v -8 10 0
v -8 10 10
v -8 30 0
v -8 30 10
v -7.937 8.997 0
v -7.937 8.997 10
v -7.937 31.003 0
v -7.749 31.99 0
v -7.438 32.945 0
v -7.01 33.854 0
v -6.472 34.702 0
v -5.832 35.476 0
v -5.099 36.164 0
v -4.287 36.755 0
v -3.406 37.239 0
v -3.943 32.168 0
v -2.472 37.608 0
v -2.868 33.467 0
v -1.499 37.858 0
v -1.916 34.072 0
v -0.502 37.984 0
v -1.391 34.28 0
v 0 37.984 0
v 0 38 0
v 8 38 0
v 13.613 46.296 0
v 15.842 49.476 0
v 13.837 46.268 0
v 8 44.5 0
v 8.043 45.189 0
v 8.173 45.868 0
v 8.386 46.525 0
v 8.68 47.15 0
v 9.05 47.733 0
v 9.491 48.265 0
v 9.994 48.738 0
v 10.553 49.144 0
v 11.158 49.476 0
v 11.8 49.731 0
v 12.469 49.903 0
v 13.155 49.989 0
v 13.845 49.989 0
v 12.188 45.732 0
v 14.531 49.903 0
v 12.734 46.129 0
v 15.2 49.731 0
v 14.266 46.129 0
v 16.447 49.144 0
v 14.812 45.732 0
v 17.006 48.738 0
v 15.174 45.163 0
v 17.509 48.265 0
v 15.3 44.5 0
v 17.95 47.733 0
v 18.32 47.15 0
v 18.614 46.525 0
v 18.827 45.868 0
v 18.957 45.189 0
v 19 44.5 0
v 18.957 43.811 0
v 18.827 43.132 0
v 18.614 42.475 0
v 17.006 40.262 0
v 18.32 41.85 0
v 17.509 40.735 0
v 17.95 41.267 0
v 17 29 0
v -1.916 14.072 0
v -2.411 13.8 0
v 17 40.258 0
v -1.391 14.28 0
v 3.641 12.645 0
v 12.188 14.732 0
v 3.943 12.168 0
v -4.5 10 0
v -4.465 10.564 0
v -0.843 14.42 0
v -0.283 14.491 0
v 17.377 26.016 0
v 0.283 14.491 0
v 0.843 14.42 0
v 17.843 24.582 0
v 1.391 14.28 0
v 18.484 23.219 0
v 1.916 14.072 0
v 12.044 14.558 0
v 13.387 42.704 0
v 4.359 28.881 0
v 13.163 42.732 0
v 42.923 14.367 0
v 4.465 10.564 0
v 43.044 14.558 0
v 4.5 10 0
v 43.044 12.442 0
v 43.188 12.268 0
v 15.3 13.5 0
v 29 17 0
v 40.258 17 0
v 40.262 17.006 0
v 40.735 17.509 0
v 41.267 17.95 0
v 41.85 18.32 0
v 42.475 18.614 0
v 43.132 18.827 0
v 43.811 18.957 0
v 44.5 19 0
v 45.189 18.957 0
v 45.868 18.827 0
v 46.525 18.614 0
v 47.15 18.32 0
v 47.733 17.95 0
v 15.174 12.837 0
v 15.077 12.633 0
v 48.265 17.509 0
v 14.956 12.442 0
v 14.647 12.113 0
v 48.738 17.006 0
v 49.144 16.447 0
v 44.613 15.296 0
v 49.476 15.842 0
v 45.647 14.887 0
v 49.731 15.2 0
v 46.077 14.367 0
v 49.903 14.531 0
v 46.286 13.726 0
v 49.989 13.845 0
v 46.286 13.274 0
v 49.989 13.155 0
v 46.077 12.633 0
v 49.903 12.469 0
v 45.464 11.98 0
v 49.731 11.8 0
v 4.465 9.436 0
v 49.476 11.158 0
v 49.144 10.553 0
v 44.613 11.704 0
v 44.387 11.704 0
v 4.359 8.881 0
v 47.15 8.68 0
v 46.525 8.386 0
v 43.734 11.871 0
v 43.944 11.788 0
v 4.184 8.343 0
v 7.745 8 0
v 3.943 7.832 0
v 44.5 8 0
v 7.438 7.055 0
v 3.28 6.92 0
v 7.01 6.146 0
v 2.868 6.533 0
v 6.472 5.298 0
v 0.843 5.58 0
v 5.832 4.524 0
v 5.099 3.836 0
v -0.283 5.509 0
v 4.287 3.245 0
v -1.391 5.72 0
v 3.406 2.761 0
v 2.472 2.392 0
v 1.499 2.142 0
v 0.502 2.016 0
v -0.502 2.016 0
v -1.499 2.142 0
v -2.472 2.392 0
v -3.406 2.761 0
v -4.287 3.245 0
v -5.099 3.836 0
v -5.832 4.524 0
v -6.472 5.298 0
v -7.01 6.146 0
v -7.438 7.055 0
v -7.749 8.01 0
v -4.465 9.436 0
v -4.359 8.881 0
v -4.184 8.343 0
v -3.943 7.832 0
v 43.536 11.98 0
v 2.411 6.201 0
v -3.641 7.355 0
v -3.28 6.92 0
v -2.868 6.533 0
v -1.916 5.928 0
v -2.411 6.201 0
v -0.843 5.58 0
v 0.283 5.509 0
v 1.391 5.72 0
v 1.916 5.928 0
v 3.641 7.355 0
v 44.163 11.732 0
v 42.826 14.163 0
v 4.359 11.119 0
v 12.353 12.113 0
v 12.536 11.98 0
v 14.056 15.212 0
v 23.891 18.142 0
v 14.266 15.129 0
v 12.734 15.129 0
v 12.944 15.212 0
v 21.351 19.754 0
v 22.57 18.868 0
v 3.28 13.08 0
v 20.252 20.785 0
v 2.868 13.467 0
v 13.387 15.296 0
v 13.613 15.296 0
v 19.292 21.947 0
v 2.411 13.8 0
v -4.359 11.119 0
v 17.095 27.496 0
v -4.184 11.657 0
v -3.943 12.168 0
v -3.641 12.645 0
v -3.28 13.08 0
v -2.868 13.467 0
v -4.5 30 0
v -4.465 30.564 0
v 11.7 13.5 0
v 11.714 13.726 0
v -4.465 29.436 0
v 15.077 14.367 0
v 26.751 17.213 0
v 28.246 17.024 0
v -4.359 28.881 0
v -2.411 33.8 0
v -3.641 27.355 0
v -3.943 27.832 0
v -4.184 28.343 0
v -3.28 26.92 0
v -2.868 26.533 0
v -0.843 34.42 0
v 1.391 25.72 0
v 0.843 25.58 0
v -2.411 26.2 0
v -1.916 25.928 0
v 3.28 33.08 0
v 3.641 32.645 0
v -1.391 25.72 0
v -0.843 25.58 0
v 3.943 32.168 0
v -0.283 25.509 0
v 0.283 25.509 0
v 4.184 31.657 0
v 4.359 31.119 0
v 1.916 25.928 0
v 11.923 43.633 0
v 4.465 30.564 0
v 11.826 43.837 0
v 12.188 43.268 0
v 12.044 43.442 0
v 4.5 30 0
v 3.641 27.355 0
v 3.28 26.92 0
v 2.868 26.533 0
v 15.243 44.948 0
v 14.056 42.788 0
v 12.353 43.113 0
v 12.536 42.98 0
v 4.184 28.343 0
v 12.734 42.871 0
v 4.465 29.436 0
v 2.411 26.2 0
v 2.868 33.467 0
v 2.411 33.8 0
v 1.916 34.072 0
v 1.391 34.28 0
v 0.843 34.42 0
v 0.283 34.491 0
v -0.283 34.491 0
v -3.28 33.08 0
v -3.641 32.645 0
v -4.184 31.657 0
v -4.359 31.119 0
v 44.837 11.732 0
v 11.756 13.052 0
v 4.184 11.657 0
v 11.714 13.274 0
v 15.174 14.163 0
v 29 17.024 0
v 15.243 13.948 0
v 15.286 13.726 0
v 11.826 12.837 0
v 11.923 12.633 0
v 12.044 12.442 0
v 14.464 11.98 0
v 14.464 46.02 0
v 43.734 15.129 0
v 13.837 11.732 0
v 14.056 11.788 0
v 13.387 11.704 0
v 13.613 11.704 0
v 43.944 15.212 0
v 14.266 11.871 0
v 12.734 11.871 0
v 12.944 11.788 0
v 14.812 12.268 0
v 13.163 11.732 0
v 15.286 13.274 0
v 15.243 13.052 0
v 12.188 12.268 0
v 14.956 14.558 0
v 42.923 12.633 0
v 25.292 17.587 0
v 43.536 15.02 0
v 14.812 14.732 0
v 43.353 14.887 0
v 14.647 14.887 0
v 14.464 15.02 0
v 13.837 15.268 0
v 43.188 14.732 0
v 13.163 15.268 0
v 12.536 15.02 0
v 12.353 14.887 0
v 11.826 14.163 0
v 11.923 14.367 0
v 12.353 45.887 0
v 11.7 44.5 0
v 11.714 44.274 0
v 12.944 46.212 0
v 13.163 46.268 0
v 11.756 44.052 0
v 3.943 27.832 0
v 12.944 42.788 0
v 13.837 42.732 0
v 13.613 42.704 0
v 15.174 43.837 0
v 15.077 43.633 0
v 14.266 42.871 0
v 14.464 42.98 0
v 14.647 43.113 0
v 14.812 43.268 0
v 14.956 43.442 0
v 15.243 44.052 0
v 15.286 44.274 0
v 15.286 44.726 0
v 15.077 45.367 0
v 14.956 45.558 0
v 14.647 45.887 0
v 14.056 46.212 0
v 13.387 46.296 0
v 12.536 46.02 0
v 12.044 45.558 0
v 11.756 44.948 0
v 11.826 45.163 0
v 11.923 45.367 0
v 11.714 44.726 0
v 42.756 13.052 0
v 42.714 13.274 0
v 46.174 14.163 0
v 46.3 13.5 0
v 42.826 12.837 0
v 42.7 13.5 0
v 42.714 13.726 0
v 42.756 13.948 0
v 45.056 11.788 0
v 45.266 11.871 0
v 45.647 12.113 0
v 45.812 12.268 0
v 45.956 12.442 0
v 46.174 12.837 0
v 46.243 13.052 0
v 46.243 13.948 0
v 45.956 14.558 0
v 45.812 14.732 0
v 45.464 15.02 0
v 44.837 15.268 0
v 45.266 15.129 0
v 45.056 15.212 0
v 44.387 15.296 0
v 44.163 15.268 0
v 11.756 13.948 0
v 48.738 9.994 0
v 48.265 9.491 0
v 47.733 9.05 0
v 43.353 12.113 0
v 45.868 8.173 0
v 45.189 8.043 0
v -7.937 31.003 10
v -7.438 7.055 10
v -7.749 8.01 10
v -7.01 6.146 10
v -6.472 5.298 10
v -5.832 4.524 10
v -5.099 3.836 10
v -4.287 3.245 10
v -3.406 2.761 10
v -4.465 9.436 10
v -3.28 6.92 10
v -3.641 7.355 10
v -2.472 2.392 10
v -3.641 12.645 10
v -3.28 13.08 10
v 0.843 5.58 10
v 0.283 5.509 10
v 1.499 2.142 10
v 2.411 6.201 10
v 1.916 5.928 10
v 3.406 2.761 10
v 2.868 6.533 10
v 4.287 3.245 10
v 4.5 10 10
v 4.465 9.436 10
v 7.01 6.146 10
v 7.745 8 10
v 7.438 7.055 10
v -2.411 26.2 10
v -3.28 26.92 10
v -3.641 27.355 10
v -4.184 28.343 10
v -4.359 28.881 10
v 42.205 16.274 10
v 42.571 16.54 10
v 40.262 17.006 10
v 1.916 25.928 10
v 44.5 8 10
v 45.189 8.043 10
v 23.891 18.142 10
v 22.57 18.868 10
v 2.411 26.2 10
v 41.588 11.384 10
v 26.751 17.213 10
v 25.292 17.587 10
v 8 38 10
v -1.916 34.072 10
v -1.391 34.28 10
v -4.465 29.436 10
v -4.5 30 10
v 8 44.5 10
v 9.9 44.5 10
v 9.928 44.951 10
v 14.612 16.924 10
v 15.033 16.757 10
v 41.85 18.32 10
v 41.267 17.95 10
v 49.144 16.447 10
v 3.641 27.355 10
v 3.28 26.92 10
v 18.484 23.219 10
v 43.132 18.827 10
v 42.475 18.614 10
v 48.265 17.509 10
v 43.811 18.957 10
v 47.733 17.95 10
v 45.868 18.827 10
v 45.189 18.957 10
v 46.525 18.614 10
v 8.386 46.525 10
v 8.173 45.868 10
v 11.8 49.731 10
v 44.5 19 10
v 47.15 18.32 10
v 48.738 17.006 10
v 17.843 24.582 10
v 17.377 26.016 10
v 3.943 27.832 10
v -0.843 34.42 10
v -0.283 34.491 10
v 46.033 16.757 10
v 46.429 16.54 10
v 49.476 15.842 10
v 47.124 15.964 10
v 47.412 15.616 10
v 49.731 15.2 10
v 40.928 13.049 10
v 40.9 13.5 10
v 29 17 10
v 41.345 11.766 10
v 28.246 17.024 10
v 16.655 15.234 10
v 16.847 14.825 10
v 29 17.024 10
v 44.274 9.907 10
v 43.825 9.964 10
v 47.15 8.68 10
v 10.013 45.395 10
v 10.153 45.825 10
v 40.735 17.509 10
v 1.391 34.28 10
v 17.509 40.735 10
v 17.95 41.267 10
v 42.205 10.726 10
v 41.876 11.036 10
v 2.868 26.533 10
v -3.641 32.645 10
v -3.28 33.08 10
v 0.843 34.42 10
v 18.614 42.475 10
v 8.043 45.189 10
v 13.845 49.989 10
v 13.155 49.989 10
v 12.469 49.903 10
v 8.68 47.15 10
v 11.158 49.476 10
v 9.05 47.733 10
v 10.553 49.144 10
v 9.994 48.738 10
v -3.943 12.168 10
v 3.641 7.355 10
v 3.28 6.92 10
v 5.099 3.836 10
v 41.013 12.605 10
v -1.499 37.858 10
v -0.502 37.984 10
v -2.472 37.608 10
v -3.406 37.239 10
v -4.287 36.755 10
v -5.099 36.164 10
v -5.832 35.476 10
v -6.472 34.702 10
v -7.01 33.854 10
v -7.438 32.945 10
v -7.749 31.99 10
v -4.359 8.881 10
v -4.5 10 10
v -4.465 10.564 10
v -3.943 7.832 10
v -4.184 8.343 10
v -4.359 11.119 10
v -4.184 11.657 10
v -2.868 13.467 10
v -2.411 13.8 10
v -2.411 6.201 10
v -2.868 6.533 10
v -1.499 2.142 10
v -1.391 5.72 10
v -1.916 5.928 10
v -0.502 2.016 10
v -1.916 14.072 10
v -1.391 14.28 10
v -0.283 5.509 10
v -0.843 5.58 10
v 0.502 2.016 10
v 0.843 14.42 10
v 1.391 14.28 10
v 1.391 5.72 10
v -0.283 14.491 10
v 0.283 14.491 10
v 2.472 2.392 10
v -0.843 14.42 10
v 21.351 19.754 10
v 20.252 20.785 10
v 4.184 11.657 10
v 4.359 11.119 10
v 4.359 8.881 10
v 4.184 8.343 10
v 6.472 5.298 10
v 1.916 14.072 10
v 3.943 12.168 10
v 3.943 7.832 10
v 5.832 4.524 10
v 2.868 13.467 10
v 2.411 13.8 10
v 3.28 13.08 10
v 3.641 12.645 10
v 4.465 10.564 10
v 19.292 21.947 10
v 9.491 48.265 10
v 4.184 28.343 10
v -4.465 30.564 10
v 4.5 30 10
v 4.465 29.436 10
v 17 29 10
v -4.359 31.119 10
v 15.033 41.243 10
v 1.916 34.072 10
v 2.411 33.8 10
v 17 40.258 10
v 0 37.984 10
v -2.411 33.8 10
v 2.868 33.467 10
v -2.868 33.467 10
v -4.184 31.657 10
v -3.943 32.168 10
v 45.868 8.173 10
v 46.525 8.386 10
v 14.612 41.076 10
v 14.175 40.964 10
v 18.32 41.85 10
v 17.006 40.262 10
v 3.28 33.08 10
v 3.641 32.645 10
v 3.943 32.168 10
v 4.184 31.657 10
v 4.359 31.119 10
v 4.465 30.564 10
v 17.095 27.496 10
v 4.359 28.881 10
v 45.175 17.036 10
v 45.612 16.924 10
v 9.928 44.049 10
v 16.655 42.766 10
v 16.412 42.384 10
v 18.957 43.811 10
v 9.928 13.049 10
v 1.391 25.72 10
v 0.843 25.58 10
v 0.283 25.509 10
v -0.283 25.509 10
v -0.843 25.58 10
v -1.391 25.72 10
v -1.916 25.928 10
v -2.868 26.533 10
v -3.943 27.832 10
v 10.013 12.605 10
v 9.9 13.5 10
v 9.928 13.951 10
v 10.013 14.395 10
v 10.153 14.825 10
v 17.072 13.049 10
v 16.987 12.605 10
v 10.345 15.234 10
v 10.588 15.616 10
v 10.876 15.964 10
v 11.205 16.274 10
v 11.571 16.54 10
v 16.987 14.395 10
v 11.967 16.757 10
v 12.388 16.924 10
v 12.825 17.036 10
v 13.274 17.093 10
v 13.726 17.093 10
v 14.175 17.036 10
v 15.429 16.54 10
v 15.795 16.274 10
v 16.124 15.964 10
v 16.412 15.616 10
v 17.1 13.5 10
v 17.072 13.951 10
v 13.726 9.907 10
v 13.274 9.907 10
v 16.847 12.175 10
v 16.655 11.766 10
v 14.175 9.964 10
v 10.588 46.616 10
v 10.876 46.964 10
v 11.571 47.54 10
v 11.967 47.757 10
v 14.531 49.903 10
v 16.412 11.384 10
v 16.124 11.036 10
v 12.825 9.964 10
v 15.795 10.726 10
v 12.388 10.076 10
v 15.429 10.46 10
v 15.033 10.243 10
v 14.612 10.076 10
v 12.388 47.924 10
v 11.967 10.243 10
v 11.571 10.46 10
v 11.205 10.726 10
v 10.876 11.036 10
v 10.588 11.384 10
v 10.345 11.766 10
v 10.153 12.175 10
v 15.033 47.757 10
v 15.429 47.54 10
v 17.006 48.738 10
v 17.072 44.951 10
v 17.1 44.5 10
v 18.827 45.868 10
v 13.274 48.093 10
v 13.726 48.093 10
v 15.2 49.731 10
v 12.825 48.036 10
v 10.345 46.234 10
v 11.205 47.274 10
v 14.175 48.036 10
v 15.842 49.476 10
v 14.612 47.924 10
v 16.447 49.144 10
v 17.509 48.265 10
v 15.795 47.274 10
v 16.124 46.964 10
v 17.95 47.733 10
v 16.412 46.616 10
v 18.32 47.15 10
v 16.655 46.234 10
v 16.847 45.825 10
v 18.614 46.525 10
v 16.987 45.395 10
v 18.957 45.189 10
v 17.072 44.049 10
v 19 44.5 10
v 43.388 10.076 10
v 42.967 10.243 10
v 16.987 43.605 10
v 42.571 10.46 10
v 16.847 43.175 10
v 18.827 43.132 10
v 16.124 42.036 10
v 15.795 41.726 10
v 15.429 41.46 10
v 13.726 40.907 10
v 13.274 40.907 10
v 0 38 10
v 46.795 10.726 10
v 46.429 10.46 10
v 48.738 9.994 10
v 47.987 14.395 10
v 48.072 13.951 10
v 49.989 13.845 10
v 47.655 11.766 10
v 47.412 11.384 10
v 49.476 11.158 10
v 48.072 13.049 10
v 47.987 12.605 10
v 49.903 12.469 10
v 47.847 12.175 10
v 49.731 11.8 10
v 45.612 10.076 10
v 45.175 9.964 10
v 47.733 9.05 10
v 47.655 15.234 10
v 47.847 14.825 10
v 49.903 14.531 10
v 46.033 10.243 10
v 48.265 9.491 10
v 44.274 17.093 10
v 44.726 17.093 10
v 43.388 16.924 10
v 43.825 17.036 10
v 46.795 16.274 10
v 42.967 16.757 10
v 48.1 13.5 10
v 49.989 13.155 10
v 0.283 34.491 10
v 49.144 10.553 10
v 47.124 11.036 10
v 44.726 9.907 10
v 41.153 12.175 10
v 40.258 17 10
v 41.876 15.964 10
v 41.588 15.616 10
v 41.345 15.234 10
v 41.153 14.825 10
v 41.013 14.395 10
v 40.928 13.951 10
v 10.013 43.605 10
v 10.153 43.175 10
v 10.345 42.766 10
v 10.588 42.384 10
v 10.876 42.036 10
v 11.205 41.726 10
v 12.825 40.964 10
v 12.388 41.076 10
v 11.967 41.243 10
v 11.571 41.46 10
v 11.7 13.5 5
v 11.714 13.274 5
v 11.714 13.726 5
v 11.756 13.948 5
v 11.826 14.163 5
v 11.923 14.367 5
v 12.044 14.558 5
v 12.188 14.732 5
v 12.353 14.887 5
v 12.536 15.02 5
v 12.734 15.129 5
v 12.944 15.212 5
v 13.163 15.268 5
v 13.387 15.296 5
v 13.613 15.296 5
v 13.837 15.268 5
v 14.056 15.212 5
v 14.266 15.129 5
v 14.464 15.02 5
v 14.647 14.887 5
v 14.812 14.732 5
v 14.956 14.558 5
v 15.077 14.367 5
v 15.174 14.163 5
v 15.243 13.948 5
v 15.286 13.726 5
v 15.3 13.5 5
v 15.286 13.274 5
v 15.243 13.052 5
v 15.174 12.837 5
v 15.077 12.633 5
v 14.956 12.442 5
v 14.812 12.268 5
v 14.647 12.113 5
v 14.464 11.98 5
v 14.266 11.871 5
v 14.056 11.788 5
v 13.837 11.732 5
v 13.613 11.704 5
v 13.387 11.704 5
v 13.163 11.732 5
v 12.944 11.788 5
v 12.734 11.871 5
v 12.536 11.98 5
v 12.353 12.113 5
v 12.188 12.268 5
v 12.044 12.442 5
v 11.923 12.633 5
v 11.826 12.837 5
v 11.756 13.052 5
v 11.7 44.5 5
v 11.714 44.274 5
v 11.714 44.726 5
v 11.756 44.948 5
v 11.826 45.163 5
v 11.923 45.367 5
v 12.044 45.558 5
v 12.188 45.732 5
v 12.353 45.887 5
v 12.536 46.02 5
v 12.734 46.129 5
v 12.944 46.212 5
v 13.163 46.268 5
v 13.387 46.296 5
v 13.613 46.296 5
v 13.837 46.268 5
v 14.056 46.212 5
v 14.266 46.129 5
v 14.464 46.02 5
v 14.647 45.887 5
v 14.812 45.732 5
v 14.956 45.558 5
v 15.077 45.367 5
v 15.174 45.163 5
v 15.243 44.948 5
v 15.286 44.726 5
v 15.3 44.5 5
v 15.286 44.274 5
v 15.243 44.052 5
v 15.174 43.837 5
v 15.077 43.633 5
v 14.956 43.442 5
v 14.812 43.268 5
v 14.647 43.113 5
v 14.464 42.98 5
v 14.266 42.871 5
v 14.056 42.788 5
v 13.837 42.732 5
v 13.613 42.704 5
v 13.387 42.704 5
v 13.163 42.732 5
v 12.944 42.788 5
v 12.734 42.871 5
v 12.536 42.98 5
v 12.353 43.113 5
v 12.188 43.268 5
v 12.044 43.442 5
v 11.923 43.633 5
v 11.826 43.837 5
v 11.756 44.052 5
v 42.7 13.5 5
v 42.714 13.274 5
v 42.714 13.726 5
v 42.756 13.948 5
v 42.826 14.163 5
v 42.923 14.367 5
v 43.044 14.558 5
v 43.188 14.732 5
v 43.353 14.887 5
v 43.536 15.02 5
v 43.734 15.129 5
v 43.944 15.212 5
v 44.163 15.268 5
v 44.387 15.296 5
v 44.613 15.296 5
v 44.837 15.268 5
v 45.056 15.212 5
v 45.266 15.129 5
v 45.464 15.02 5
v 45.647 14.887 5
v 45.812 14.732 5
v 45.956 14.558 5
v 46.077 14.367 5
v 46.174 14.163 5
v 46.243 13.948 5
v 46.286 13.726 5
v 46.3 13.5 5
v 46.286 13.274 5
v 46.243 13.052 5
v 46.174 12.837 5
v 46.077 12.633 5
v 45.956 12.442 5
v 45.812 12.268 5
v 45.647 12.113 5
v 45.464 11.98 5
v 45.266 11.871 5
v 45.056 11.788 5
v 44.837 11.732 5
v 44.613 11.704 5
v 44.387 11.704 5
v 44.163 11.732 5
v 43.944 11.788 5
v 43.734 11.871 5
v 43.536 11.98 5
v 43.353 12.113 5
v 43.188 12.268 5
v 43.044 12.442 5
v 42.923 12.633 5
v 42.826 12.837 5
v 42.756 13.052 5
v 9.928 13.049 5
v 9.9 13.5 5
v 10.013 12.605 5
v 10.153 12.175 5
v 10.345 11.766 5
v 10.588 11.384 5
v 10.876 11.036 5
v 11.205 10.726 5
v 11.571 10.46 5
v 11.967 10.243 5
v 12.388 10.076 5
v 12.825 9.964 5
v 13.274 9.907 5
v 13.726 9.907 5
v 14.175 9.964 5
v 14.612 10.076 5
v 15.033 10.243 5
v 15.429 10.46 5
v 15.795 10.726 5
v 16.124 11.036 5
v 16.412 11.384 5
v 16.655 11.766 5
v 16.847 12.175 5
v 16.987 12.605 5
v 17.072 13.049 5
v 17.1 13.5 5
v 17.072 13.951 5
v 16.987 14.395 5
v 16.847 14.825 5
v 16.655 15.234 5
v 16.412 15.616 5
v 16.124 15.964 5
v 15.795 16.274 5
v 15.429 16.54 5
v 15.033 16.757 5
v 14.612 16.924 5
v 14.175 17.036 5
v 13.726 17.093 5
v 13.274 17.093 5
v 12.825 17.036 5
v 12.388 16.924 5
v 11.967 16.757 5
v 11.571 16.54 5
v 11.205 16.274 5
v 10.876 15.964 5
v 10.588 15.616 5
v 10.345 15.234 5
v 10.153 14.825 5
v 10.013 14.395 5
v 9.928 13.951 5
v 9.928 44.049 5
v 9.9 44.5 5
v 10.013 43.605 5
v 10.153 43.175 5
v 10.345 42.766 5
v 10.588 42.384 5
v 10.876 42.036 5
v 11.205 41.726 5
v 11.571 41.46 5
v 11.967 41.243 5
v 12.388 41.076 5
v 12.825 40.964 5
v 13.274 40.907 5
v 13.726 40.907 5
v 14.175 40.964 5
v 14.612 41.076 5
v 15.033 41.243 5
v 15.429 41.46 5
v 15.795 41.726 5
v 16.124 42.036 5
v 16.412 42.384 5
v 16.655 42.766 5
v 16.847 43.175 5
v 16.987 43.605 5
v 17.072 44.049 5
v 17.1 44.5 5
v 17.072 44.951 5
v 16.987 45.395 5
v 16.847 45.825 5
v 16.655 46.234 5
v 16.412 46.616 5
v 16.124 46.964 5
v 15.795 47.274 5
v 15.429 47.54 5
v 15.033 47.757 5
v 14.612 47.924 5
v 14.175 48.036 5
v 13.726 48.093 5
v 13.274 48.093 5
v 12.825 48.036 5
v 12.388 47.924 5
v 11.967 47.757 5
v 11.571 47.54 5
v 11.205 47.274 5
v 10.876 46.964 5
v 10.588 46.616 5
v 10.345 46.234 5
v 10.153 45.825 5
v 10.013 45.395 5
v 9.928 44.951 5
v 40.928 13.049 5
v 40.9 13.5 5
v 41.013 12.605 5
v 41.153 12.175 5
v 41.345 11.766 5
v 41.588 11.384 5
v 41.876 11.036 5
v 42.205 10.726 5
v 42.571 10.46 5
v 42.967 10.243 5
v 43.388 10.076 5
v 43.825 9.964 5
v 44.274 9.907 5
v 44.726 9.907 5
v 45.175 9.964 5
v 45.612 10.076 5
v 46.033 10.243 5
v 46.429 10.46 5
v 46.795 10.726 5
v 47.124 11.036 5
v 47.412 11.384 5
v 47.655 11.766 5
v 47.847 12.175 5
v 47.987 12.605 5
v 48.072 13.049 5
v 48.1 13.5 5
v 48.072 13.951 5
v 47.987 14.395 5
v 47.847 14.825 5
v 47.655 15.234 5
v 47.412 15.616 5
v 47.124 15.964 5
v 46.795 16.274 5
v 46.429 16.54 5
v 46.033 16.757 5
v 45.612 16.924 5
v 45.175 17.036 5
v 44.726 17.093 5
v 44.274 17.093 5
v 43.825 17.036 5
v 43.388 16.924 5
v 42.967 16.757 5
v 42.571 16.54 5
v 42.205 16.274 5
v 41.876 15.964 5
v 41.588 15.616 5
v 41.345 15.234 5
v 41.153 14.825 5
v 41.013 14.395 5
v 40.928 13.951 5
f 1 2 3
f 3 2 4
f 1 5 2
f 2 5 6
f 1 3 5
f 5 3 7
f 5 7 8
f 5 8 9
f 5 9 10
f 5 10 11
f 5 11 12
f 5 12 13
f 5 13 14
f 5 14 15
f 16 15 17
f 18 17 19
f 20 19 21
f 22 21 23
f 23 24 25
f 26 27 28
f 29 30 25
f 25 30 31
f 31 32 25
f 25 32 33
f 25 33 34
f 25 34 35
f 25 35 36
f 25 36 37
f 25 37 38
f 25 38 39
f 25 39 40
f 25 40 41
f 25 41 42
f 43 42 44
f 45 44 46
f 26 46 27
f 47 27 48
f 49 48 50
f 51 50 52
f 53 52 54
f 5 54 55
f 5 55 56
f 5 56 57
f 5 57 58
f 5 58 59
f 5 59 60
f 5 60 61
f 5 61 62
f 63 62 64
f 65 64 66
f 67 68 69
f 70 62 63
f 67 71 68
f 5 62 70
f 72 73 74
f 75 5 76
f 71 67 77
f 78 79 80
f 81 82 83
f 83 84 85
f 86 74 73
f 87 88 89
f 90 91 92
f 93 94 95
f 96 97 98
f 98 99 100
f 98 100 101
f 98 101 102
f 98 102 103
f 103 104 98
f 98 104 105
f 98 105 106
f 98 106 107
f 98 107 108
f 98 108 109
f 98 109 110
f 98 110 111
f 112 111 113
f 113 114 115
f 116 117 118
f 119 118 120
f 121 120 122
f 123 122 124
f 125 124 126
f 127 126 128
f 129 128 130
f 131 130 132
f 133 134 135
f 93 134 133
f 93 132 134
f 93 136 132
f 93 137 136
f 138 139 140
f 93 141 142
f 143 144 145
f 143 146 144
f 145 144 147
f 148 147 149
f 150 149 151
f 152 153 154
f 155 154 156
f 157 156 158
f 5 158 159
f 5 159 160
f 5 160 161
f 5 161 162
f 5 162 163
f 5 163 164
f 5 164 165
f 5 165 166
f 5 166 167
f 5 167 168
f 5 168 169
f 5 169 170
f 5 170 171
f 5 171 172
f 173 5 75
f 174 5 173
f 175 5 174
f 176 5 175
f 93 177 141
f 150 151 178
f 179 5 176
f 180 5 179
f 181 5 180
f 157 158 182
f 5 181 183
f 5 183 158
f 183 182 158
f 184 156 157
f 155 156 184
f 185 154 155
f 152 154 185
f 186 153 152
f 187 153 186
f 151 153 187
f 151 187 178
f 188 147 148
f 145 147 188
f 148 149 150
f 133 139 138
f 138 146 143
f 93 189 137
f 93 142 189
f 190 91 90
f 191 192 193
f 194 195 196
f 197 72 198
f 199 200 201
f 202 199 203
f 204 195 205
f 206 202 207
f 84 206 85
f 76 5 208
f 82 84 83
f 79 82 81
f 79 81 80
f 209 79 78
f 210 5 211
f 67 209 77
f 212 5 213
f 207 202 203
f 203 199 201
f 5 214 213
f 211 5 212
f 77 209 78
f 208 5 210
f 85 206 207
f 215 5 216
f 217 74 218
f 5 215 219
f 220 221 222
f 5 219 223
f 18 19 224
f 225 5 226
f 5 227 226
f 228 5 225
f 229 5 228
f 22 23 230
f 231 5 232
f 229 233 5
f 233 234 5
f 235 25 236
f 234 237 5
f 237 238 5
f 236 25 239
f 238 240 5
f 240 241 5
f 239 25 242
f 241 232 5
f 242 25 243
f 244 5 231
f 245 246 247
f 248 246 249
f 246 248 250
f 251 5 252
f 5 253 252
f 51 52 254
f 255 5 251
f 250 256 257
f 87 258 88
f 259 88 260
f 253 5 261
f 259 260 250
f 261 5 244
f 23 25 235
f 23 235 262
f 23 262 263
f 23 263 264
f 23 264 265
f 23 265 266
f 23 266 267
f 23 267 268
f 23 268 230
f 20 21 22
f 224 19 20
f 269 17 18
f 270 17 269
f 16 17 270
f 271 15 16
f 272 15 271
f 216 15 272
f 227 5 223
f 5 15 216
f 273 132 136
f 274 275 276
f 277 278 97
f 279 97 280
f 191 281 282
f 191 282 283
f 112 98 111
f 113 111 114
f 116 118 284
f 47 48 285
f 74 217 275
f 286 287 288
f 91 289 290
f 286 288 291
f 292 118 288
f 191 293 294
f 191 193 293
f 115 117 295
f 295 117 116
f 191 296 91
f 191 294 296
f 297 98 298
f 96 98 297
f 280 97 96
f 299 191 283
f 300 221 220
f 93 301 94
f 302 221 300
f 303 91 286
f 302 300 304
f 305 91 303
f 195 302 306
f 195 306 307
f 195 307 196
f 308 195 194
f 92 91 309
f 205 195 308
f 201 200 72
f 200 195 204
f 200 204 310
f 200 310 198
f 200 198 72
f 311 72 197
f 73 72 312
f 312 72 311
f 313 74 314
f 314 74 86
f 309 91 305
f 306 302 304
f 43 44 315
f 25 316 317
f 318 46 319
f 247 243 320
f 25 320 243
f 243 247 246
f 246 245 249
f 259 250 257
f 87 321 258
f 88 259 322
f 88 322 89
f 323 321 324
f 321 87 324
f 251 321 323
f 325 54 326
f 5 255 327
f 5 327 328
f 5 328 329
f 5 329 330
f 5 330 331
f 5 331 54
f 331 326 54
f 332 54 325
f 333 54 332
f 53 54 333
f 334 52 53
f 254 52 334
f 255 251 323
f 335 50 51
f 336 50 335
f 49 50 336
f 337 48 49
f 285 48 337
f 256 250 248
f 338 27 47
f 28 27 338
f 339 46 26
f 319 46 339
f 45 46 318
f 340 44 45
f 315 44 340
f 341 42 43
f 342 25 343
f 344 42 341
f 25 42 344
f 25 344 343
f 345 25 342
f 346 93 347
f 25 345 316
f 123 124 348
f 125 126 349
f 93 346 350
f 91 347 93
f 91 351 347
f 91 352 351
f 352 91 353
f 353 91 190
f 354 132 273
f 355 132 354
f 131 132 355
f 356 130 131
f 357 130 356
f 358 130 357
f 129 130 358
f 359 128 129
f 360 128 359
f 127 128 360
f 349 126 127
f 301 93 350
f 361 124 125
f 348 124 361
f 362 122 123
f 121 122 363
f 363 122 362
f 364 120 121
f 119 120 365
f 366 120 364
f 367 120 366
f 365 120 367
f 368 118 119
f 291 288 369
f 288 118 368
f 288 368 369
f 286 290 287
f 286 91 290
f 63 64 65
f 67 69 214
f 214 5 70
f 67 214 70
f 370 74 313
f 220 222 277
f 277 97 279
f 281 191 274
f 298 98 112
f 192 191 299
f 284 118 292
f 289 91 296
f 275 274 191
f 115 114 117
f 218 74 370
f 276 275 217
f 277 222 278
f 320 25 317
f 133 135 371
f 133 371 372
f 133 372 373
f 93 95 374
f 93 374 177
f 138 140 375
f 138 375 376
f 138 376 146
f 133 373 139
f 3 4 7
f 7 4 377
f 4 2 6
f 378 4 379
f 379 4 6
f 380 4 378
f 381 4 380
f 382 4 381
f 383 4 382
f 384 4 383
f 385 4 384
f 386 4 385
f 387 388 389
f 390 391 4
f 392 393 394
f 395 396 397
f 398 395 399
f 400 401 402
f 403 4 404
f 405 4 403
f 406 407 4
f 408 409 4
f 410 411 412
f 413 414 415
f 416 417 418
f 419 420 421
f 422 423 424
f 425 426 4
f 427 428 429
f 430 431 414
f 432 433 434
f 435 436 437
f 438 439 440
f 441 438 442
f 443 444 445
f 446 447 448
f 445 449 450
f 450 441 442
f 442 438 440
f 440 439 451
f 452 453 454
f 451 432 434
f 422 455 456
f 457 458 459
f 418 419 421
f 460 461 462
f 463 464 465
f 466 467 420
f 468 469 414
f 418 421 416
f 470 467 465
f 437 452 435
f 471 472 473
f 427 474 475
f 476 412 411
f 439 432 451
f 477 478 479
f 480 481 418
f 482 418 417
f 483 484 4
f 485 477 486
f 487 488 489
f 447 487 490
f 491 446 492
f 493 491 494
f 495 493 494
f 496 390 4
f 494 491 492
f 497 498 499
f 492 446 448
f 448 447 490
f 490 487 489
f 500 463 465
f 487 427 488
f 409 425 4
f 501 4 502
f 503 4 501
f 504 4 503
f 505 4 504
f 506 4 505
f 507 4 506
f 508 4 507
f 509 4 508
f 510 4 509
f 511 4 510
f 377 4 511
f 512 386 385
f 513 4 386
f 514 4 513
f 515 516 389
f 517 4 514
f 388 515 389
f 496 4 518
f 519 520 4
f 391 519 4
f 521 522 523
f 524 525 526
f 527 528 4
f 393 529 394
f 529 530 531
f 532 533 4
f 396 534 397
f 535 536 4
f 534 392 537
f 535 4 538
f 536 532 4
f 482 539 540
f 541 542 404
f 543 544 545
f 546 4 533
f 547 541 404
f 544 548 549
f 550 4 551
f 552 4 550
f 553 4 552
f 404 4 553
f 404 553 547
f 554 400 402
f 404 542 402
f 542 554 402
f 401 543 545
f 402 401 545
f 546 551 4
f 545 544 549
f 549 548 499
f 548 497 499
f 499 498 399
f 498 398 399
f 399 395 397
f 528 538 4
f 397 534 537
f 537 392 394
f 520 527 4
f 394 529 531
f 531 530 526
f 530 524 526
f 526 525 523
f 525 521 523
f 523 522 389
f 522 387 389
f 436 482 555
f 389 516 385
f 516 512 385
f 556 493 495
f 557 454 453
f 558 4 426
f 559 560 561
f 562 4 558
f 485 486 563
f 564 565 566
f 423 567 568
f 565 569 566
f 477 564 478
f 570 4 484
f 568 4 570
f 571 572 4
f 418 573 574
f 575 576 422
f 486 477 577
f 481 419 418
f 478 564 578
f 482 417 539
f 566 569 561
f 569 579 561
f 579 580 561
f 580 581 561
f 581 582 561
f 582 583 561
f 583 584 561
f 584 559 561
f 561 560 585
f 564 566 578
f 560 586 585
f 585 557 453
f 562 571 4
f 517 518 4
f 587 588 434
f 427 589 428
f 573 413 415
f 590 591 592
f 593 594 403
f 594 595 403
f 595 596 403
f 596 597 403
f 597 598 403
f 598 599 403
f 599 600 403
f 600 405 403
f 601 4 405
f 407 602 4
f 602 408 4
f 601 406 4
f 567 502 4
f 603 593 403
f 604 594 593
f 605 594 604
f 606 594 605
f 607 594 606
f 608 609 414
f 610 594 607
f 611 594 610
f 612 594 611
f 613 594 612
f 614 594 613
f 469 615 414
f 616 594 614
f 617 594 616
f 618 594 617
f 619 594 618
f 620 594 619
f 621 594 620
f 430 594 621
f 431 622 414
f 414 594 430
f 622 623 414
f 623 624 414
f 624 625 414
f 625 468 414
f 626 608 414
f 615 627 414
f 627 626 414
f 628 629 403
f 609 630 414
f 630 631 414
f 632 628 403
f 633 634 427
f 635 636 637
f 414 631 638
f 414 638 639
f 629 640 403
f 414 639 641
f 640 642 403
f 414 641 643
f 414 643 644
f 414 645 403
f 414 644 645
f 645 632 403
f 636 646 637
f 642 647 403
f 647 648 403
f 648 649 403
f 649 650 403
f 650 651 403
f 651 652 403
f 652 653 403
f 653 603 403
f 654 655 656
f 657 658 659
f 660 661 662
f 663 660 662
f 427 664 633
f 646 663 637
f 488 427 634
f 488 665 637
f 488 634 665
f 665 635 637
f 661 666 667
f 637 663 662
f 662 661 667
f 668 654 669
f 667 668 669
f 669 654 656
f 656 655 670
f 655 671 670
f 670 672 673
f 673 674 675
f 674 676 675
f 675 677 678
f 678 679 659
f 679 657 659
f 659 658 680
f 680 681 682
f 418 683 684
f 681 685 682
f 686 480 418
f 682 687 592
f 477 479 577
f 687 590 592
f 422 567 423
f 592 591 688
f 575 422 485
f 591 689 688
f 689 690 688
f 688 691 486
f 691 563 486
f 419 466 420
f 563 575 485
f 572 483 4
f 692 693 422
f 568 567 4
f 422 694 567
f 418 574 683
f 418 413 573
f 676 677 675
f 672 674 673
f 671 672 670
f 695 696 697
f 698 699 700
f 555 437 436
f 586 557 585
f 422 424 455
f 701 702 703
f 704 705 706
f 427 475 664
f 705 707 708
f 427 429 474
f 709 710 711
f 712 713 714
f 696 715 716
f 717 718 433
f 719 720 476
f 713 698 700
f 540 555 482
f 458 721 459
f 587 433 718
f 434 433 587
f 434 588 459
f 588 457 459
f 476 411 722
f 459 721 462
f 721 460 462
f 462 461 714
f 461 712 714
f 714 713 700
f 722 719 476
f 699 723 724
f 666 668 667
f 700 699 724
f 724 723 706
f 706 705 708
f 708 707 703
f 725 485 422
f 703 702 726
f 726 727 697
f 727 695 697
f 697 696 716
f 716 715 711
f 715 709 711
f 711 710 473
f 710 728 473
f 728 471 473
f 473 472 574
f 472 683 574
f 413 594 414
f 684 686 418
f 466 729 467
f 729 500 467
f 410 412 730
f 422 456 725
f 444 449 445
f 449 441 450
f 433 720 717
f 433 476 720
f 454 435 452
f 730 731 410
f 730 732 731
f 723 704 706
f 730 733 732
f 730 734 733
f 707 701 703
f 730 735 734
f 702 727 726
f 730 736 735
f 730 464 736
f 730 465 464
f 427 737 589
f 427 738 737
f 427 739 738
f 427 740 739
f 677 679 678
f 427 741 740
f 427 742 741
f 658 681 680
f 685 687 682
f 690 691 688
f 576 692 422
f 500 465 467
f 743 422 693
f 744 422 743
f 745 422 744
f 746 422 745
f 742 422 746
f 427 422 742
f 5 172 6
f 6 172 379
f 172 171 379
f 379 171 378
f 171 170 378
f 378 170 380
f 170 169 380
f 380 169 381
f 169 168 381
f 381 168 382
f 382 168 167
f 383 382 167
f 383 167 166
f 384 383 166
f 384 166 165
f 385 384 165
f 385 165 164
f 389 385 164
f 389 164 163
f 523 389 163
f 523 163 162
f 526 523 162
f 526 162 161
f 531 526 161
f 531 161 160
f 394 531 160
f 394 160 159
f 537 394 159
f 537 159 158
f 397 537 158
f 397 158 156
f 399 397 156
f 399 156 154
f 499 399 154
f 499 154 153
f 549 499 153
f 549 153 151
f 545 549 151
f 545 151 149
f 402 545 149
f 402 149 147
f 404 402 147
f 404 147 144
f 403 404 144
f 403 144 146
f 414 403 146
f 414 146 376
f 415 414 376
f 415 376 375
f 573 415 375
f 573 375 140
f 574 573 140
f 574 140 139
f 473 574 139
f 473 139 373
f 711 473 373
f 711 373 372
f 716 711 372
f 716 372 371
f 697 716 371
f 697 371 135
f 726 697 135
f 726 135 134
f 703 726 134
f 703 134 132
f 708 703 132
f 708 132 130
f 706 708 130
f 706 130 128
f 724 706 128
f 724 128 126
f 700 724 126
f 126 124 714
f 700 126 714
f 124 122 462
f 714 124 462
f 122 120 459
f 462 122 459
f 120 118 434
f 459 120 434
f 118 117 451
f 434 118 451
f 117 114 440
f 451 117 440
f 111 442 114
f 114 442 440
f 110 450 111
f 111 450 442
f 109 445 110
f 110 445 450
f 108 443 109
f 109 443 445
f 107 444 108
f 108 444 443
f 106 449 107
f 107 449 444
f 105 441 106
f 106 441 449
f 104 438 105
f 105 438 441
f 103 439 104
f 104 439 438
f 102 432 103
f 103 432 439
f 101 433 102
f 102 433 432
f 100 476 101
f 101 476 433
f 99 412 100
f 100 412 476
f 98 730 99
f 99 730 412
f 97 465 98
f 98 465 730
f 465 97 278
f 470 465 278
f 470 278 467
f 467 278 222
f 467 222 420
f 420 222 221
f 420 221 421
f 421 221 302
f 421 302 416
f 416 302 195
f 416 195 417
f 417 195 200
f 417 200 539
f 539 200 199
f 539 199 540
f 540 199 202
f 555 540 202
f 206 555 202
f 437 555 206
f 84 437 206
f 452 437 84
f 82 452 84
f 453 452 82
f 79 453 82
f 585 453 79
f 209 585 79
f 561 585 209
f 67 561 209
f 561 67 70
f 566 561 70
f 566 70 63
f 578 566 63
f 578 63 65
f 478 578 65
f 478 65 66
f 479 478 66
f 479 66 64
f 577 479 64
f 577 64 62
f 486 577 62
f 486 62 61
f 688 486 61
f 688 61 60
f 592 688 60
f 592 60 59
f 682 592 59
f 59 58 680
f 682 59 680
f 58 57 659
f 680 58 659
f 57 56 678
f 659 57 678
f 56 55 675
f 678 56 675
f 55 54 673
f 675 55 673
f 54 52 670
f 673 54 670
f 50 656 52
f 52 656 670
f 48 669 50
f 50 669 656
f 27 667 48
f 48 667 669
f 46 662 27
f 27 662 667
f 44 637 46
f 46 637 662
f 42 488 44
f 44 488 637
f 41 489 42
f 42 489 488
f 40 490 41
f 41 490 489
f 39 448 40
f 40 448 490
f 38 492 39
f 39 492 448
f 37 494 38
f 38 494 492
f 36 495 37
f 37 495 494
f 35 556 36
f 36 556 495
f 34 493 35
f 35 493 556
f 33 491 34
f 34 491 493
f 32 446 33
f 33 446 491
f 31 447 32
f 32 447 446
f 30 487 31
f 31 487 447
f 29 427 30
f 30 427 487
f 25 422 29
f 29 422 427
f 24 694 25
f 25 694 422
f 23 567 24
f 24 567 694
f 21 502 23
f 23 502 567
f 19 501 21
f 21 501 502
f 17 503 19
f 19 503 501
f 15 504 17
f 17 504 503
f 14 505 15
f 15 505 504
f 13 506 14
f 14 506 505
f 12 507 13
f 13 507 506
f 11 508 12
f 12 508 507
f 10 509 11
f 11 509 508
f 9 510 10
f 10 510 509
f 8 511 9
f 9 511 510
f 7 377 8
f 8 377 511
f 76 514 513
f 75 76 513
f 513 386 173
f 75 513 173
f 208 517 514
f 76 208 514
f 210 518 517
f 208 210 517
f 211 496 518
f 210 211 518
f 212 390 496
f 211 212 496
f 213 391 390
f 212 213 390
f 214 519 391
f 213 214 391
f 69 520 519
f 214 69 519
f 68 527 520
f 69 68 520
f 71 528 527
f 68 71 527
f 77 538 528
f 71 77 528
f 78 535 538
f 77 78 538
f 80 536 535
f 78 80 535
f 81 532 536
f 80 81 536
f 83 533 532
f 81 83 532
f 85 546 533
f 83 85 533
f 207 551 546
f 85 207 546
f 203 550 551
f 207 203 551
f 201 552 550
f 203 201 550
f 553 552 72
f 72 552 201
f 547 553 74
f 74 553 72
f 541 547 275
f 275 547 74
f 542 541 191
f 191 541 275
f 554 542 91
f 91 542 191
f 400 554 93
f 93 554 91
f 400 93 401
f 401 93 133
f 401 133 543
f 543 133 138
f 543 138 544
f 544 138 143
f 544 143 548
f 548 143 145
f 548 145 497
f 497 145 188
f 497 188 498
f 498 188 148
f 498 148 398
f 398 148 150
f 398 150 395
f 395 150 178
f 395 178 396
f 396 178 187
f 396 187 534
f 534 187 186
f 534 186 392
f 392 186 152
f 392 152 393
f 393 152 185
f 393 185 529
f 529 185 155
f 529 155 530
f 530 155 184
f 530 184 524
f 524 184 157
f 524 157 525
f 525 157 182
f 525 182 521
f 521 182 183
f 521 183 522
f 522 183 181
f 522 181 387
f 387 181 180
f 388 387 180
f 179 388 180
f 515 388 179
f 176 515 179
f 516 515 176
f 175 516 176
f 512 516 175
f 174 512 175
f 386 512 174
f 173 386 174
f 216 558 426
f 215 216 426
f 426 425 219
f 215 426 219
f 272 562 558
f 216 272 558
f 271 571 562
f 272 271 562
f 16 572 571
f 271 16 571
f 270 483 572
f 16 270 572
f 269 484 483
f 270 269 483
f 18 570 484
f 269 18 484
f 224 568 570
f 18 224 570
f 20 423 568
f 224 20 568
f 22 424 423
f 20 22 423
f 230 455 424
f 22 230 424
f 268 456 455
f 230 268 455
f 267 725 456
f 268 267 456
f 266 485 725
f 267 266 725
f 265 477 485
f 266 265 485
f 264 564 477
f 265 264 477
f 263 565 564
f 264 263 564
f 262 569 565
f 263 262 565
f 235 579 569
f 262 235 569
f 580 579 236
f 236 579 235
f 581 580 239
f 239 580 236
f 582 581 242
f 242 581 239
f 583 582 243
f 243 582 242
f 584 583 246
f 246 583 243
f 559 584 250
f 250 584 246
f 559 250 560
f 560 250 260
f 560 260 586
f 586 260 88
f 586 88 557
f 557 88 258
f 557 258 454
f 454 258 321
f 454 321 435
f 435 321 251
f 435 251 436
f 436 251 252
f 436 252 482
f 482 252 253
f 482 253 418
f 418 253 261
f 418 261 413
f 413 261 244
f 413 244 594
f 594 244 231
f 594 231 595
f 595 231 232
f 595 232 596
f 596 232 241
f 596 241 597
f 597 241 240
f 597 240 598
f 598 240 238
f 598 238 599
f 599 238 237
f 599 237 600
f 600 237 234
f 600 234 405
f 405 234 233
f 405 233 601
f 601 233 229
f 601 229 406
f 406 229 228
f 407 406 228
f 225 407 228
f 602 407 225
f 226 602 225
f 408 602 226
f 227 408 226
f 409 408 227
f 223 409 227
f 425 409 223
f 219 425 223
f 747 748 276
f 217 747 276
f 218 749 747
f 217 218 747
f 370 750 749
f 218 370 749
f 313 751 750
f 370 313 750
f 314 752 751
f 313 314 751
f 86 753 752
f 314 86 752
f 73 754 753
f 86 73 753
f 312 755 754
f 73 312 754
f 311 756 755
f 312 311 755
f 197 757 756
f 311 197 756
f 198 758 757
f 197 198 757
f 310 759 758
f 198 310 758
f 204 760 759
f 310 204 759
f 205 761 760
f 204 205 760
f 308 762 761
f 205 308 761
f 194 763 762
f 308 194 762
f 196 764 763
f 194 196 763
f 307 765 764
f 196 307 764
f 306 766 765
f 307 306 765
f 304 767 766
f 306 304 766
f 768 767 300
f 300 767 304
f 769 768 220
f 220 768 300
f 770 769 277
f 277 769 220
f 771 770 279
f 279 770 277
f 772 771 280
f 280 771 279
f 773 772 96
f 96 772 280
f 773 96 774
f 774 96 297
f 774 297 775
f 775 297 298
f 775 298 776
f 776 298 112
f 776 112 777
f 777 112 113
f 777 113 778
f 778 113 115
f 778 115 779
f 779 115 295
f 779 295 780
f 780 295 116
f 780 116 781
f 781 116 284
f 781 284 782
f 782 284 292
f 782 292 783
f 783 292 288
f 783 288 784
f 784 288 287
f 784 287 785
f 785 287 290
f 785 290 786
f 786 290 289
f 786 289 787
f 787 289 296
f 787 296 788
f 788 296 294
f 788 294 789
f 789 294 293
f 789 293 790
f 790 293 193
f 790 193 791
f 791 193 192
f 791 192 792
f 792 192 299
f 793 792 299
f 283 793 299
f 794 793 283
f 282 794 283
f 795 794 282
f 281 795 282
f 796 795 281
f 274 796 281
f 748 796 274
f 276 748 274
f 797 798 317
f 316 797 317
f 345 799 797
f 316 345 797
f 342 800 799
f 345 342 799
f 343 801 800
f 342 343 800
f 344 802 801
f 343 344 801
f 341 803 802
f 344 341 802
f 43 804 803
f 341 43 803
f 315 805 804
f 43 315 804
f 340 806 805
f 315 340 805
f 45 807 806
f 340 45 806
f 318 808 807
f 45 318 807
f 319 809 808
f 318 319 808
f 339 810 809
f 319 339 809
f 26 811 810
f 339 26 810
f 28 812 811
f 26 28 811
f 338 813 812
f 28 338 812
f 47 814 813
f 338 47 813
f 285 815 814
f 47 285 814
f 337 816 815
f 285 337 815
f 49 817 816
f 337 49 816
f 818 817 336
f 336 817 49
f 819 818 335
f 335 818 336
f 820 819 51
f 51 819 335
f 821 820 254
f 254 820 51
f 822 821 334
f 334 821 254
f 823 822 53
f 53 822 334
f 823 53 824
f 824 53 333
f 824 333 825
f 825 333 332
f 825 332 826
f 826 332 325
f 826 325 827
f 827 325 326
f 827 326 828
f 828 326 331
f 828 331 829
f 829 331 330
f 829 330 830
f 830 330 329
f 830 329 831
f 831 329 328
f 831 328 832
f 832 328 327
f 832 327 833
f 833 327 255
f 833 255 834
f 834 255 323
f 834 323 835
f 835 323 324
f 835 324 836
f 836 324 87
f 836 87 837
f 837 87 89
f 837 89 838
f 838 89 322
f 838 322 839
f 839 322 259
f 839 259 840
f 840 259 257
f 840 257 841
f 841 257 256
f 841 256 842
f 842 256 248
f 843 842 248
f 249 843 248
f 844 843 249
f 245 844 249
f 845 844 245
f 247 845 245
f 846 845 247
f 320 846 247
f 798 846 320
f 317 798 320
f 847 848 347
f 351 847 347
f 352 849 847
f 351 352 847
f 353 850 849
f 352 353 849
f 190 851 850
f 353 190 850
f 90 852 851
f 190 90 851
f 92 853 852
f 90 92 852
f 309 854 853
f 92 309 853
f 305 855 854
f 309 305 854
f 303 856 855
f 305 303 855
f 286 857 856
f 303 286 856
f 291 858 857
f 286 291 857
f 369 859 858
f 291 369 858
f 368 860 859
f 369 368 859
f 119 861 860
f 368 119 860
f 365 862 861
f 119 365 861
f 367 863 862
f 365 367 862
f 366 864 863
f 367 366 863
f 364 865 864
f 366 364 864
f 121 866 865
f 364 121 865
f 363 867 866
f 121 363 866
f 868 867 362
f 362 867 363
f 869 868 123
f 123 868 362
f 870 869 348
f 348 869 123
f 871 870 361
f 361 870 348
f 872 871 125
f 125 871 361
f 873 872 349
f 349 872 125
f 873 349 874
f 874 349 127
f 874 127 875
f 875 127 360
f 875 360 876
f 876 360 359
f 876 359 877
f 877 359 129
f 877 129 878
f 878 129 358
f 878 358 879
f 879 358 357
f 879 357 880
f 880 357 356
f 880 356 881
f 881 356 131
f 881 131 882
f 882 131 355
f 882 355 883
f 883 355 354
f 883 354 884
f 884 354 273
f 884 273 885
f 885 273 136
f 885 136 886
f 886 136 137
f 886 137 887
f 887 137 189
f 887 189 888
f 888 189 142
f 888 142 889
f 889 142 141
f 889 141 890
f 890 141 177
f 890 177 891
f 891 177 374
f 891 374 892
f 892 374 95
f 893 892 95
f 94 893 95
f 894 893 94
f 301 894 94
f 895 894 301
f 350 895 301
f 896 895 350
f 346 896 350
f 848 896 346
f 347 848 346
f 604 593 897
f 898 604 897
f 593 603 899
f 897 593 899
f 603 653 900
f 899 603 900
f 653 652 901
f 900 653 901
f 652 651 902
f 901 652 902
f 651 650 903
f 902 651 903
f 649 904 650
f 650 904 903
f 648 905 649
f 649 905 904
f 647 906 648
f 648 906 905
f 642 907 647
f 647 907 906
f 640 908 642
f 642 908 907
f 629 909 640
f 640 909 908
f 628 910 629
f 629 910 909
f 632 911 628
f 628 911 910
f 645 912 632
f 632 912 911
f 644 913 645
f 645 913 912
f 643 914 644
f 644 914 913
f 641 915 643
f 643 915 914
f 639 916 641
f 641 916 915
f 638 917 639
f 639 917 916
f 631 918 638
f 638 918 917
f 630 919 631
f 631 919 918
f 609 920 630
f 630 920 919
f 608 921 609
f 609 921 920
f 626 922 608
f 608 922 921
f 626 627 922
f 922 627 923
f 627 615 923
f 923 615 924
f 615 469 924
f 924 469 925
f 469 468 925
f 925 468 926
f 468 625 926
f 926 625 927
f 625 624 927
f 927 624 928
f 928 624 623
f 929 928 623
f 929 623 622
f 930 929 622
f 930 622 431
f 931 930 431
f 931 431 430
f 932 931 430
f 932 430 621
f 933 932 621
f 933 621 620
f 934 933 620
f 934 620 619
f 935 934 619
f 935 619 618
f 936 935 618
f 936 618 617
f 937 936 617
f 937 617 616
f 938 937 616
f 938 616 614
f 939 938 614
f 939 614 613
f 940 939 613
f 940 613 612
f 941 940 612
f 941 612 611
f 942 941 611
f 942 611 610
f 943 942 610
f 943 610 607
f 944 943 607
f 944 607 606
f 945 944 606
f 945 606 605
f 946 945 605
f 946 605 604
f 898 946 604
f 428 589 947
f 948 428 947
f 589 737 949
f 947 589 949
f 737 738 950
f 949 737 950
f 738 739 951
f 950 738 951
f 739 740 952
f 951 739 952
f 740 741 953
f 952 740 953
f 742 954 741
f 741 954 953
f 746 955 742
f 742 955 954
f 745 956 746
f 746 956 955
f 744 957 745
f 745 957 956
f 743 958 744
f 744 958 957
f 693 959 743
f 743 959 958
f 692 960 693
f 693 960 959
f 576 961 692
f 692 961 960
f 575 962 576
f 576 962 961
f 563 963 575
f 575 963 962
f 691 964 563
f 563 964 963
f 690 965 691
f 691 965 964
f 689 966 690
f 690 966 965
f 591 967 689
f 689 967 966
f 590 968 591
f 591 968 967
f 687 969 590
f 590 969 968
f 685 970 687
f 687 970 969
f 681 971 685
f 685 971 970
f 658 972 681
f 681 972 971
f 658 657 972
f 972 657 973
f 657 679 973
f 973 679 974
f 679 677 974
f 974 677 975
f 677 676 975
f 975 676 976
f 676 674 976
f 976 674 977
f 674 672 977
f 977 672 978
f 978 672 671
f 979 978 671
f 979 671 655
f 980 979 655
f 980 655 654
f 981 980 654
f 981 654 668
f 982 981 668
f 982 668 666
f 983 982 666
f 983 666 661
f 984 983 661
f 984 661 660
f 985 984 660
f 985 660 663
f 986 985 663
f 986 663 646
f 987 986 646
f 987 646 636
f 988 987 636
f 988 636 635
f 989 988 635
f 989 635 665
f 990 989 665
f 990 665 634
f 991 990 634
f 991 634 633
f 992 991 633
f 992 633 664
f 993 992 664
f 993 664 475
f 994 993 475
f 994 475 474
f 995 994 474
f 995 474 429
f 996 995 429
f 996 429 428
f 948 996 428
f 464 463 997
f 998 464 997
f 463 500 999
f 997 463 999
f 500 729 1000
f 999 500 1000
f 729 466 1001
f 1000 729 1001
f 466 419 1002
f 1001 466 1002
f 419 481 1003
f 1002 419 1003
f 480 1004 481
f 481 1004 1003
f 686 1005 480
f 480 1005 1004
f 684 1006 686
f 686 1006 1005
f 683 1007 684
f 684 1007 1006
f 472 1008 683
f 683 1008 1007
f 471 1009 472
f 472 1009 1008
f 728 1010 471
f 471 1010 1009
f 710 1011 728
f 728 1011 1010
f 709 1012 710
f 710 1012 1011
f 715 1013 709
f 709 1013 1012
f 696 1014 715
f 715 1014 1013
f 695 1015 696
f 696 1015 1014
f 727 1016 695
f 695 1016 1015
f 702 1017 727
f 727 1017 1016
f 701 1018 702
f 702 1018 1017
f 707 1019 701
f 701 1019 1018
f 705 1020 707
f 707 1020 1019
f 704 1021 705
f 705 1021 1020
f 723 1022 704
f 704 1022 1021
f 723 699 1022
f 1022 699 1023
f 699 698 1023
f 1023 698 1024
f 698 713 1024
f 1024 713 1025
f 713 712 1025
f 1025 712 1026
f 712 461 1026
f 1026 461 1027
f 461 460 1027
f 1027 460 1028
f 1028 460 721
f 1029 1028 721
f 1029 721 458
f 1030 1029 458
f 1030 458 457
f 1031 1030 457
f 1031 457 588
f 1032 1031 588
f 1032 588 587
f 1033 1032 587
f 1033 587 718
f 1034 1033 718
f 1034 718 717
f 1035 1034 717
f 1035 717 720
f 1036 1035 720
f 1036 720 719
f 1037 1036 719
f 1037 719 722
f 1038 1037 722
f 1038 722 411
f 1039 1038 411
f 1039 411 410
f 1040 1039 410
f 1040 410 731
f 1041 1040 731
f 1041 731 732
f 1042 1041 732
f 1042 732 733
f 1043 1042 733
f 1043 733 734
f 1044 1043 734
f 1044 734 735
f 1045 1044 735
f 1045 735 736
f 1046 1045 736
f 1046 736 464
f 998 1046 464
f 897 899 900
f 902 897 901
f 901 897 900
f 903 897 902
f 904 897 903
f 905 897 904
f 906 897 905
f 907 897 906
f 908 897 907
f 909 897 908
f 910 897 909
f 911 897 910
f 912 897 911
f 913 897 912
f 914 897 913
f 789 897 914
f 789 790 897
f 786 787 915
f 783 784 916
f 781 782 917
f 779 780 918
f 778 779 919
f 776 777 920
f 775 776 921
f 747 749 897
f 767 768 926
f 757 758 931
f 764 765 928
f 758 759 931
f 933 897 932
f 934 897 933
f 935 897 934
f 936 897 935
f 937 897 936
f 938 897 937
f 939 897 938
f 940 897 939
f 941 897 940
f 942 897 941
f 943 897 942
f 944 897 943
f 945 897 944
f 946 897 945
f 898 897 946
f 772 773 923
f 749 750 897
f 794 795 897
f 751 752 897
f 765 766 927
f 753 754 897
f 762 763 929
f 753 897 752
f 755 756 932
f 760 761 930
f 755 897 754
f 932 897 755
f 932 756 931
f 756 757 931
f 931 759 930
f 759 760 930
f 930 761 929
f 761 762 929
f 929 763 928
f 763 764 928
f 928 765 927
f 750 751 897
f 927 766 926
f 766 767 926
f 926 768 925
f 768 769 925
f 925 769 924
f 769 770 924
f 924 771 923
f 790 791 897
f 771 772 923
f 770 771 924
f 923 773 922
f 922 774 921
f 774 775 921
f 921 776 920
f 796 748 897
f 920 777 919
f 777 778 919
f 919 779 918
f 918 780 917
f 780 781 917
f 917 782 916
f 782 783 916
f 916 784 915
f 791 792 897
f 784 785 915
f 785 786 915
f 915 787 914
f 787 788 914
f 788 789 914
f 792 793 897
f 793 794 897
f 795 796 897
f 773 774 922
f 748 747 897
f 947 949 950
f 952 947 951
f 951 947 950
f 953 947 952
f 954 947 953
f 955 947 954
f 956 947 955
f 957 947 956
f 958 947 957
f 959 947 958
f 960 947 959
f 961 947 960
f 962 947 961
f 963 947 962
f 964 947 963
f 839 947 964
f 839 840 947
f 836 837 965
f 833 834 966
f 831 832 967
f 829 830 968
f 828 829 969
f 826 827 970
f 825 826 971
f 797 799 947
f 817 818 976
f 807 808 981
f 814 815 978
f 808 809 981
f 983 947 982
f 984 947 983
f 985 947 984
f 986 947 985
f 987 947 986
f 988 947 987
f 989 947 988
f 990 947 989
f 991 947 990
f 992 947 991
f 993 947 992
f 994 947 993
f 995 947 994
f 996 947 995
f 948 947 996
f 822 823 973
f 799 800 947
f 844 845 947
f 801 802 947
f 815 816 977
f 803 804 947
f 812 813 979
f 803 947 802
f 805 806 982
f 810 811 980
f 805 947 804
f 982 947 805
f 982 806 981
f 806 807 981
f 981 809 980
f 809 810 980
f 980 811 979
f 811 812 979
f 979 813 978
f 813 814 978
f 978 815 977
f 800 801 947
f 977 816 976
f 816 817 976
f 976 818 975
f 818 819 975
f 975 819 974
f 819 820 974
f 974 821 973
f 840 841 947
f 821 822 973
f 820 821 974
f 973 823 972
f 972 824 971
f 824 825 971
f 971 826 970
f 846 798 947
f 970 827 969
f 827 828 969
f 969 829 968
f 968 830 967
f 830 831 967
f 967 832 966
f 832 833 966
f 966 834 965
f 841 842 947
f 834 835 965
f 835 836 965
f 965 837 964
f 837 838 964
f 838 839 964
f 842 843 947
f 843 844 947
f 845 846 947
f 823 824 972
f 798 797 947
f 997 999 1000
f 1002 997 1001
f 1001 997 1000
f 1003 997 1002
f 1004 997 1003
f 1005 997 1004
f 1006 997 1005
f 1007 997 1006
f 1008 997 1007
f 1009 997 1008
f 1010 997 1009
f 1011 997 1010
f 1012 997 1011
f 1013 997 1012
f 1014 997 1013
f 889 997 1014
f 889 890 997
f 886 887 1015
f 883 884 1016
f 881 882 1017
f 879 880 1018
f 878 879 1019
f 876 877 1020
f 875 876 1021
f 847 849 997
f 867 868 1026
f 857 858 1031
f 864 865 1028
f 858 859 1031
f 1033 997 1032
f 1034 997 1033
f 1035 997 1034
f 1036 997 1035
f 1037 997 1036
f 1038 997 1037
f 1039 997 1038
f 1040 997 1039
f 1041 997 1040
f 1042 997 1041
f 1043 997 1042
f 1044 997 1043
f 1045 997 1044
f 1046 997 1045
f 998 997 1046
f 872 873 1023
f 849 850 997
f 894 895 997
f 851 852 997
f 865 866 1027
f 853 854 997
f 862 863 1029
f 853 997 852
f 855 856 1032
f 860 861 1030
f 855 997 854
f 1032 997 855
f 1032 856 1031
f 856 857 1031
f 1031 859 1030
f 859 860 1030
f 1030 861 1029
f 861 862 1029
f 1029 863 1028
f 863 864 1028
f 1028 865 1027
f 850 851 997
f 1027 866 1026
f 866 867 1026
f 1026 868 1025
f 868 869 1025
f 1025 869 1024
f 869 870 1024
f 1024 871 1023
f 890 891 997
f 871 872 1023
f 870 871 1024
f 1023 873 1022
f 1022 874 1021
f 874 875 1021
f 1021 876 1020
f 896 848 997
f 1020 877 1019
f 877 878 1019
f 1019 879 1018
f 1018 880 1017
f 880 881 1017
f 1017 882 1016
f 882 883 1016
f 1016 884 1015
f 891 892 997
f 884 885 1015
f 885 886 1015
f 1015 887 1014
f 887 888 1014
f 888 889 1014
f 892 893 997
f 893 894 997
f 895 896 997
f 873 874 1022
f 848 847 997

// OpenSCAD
// PRUSA iteration3
// Y motor mount
// GNU GPL v3
// Josef Průša <iam@josefprusa.cz> and contributors
// http://www.reprap.org/wiki/Prusa_Mendel
// http://prusamendel.org

// +info http://www.thingiverse.com/thing:85809

//include <configuration.scad>

// More cylinder resolution
$fn=50;

module y_motor_base(){
 // Motor holding part
 translate(v = [29,-21+50,0]){
  translate(v = [-21+4.5,0,5]) cube(size = [9,31,10], center=true);
  translate(v = [-21+4.5+31/2+1,0-31/2-1,5]) cube(size = [31,9,10], center=true);
  //translate(v = [-15.5,-15.5,0]) cylinder(h = 10, r=5.5);
  translate(v = [-15.5,-15.5,0]) cube(size=[15.5,15.5,10], center=false);
  translate(v = [-15.5,+15.5,0]) cylinder(h = 10, r=5.5);
  translate(v = [+15.5,-15.5,0]) rotate([0,0,90]) cylinder(h = 10, r=5.5);
  // Joins motor holder and rod plate
  translate(v = [-29,-21,0]) cube(size = [14,30,10]);
 }
 // Front holding part
 translate(v = [0,10,0]) cylinder(h = 10, r=8);
 translate(v = [0,20,5])cube(size = [16,20,10], center=true);	
 translate(v = [0,30,0])cylinder(h = 10, r=8);
}

module y_motor_holes(){
 translate(v = [29,-21+50,0]){
  // Screw head holes
  translate(v = [-15.5,-15.5,-1]) cylinder(h = 10, r=1.8);
  translate(v = [-15.5,+15.5,-1]) cylinder(h = 10, r=1.8);
  translate(v = [+15.5,-15.5,-1]) cylinder(h = 10, r=1.8);
  // Screw holes
  translate(v = [-15.5,-15.5,5]) cylinder(h = 7, r=3.6);
  translate(v = [-15.5,+15.5,5]) cylinder(h = 7, r=3.6);
  translate(v = [+15.5,-15.5,5]) cylinder(h = 7, r=3.6);
  // Shaft hole
  translate(v = [0,0,5]) cylinder(h = 11, r = 12, center = true);
 }
 translate(v = [0,10,-1]) cylinder(h = 12, r=4.5);	
 translate(v = [0,30,-1])cylinder(h = 12, r=4.5);
}

// Final part
module y_motor(){
 difference(){
  y_motor_base();
  y_motor_holes();
 }
}

y_motor();
